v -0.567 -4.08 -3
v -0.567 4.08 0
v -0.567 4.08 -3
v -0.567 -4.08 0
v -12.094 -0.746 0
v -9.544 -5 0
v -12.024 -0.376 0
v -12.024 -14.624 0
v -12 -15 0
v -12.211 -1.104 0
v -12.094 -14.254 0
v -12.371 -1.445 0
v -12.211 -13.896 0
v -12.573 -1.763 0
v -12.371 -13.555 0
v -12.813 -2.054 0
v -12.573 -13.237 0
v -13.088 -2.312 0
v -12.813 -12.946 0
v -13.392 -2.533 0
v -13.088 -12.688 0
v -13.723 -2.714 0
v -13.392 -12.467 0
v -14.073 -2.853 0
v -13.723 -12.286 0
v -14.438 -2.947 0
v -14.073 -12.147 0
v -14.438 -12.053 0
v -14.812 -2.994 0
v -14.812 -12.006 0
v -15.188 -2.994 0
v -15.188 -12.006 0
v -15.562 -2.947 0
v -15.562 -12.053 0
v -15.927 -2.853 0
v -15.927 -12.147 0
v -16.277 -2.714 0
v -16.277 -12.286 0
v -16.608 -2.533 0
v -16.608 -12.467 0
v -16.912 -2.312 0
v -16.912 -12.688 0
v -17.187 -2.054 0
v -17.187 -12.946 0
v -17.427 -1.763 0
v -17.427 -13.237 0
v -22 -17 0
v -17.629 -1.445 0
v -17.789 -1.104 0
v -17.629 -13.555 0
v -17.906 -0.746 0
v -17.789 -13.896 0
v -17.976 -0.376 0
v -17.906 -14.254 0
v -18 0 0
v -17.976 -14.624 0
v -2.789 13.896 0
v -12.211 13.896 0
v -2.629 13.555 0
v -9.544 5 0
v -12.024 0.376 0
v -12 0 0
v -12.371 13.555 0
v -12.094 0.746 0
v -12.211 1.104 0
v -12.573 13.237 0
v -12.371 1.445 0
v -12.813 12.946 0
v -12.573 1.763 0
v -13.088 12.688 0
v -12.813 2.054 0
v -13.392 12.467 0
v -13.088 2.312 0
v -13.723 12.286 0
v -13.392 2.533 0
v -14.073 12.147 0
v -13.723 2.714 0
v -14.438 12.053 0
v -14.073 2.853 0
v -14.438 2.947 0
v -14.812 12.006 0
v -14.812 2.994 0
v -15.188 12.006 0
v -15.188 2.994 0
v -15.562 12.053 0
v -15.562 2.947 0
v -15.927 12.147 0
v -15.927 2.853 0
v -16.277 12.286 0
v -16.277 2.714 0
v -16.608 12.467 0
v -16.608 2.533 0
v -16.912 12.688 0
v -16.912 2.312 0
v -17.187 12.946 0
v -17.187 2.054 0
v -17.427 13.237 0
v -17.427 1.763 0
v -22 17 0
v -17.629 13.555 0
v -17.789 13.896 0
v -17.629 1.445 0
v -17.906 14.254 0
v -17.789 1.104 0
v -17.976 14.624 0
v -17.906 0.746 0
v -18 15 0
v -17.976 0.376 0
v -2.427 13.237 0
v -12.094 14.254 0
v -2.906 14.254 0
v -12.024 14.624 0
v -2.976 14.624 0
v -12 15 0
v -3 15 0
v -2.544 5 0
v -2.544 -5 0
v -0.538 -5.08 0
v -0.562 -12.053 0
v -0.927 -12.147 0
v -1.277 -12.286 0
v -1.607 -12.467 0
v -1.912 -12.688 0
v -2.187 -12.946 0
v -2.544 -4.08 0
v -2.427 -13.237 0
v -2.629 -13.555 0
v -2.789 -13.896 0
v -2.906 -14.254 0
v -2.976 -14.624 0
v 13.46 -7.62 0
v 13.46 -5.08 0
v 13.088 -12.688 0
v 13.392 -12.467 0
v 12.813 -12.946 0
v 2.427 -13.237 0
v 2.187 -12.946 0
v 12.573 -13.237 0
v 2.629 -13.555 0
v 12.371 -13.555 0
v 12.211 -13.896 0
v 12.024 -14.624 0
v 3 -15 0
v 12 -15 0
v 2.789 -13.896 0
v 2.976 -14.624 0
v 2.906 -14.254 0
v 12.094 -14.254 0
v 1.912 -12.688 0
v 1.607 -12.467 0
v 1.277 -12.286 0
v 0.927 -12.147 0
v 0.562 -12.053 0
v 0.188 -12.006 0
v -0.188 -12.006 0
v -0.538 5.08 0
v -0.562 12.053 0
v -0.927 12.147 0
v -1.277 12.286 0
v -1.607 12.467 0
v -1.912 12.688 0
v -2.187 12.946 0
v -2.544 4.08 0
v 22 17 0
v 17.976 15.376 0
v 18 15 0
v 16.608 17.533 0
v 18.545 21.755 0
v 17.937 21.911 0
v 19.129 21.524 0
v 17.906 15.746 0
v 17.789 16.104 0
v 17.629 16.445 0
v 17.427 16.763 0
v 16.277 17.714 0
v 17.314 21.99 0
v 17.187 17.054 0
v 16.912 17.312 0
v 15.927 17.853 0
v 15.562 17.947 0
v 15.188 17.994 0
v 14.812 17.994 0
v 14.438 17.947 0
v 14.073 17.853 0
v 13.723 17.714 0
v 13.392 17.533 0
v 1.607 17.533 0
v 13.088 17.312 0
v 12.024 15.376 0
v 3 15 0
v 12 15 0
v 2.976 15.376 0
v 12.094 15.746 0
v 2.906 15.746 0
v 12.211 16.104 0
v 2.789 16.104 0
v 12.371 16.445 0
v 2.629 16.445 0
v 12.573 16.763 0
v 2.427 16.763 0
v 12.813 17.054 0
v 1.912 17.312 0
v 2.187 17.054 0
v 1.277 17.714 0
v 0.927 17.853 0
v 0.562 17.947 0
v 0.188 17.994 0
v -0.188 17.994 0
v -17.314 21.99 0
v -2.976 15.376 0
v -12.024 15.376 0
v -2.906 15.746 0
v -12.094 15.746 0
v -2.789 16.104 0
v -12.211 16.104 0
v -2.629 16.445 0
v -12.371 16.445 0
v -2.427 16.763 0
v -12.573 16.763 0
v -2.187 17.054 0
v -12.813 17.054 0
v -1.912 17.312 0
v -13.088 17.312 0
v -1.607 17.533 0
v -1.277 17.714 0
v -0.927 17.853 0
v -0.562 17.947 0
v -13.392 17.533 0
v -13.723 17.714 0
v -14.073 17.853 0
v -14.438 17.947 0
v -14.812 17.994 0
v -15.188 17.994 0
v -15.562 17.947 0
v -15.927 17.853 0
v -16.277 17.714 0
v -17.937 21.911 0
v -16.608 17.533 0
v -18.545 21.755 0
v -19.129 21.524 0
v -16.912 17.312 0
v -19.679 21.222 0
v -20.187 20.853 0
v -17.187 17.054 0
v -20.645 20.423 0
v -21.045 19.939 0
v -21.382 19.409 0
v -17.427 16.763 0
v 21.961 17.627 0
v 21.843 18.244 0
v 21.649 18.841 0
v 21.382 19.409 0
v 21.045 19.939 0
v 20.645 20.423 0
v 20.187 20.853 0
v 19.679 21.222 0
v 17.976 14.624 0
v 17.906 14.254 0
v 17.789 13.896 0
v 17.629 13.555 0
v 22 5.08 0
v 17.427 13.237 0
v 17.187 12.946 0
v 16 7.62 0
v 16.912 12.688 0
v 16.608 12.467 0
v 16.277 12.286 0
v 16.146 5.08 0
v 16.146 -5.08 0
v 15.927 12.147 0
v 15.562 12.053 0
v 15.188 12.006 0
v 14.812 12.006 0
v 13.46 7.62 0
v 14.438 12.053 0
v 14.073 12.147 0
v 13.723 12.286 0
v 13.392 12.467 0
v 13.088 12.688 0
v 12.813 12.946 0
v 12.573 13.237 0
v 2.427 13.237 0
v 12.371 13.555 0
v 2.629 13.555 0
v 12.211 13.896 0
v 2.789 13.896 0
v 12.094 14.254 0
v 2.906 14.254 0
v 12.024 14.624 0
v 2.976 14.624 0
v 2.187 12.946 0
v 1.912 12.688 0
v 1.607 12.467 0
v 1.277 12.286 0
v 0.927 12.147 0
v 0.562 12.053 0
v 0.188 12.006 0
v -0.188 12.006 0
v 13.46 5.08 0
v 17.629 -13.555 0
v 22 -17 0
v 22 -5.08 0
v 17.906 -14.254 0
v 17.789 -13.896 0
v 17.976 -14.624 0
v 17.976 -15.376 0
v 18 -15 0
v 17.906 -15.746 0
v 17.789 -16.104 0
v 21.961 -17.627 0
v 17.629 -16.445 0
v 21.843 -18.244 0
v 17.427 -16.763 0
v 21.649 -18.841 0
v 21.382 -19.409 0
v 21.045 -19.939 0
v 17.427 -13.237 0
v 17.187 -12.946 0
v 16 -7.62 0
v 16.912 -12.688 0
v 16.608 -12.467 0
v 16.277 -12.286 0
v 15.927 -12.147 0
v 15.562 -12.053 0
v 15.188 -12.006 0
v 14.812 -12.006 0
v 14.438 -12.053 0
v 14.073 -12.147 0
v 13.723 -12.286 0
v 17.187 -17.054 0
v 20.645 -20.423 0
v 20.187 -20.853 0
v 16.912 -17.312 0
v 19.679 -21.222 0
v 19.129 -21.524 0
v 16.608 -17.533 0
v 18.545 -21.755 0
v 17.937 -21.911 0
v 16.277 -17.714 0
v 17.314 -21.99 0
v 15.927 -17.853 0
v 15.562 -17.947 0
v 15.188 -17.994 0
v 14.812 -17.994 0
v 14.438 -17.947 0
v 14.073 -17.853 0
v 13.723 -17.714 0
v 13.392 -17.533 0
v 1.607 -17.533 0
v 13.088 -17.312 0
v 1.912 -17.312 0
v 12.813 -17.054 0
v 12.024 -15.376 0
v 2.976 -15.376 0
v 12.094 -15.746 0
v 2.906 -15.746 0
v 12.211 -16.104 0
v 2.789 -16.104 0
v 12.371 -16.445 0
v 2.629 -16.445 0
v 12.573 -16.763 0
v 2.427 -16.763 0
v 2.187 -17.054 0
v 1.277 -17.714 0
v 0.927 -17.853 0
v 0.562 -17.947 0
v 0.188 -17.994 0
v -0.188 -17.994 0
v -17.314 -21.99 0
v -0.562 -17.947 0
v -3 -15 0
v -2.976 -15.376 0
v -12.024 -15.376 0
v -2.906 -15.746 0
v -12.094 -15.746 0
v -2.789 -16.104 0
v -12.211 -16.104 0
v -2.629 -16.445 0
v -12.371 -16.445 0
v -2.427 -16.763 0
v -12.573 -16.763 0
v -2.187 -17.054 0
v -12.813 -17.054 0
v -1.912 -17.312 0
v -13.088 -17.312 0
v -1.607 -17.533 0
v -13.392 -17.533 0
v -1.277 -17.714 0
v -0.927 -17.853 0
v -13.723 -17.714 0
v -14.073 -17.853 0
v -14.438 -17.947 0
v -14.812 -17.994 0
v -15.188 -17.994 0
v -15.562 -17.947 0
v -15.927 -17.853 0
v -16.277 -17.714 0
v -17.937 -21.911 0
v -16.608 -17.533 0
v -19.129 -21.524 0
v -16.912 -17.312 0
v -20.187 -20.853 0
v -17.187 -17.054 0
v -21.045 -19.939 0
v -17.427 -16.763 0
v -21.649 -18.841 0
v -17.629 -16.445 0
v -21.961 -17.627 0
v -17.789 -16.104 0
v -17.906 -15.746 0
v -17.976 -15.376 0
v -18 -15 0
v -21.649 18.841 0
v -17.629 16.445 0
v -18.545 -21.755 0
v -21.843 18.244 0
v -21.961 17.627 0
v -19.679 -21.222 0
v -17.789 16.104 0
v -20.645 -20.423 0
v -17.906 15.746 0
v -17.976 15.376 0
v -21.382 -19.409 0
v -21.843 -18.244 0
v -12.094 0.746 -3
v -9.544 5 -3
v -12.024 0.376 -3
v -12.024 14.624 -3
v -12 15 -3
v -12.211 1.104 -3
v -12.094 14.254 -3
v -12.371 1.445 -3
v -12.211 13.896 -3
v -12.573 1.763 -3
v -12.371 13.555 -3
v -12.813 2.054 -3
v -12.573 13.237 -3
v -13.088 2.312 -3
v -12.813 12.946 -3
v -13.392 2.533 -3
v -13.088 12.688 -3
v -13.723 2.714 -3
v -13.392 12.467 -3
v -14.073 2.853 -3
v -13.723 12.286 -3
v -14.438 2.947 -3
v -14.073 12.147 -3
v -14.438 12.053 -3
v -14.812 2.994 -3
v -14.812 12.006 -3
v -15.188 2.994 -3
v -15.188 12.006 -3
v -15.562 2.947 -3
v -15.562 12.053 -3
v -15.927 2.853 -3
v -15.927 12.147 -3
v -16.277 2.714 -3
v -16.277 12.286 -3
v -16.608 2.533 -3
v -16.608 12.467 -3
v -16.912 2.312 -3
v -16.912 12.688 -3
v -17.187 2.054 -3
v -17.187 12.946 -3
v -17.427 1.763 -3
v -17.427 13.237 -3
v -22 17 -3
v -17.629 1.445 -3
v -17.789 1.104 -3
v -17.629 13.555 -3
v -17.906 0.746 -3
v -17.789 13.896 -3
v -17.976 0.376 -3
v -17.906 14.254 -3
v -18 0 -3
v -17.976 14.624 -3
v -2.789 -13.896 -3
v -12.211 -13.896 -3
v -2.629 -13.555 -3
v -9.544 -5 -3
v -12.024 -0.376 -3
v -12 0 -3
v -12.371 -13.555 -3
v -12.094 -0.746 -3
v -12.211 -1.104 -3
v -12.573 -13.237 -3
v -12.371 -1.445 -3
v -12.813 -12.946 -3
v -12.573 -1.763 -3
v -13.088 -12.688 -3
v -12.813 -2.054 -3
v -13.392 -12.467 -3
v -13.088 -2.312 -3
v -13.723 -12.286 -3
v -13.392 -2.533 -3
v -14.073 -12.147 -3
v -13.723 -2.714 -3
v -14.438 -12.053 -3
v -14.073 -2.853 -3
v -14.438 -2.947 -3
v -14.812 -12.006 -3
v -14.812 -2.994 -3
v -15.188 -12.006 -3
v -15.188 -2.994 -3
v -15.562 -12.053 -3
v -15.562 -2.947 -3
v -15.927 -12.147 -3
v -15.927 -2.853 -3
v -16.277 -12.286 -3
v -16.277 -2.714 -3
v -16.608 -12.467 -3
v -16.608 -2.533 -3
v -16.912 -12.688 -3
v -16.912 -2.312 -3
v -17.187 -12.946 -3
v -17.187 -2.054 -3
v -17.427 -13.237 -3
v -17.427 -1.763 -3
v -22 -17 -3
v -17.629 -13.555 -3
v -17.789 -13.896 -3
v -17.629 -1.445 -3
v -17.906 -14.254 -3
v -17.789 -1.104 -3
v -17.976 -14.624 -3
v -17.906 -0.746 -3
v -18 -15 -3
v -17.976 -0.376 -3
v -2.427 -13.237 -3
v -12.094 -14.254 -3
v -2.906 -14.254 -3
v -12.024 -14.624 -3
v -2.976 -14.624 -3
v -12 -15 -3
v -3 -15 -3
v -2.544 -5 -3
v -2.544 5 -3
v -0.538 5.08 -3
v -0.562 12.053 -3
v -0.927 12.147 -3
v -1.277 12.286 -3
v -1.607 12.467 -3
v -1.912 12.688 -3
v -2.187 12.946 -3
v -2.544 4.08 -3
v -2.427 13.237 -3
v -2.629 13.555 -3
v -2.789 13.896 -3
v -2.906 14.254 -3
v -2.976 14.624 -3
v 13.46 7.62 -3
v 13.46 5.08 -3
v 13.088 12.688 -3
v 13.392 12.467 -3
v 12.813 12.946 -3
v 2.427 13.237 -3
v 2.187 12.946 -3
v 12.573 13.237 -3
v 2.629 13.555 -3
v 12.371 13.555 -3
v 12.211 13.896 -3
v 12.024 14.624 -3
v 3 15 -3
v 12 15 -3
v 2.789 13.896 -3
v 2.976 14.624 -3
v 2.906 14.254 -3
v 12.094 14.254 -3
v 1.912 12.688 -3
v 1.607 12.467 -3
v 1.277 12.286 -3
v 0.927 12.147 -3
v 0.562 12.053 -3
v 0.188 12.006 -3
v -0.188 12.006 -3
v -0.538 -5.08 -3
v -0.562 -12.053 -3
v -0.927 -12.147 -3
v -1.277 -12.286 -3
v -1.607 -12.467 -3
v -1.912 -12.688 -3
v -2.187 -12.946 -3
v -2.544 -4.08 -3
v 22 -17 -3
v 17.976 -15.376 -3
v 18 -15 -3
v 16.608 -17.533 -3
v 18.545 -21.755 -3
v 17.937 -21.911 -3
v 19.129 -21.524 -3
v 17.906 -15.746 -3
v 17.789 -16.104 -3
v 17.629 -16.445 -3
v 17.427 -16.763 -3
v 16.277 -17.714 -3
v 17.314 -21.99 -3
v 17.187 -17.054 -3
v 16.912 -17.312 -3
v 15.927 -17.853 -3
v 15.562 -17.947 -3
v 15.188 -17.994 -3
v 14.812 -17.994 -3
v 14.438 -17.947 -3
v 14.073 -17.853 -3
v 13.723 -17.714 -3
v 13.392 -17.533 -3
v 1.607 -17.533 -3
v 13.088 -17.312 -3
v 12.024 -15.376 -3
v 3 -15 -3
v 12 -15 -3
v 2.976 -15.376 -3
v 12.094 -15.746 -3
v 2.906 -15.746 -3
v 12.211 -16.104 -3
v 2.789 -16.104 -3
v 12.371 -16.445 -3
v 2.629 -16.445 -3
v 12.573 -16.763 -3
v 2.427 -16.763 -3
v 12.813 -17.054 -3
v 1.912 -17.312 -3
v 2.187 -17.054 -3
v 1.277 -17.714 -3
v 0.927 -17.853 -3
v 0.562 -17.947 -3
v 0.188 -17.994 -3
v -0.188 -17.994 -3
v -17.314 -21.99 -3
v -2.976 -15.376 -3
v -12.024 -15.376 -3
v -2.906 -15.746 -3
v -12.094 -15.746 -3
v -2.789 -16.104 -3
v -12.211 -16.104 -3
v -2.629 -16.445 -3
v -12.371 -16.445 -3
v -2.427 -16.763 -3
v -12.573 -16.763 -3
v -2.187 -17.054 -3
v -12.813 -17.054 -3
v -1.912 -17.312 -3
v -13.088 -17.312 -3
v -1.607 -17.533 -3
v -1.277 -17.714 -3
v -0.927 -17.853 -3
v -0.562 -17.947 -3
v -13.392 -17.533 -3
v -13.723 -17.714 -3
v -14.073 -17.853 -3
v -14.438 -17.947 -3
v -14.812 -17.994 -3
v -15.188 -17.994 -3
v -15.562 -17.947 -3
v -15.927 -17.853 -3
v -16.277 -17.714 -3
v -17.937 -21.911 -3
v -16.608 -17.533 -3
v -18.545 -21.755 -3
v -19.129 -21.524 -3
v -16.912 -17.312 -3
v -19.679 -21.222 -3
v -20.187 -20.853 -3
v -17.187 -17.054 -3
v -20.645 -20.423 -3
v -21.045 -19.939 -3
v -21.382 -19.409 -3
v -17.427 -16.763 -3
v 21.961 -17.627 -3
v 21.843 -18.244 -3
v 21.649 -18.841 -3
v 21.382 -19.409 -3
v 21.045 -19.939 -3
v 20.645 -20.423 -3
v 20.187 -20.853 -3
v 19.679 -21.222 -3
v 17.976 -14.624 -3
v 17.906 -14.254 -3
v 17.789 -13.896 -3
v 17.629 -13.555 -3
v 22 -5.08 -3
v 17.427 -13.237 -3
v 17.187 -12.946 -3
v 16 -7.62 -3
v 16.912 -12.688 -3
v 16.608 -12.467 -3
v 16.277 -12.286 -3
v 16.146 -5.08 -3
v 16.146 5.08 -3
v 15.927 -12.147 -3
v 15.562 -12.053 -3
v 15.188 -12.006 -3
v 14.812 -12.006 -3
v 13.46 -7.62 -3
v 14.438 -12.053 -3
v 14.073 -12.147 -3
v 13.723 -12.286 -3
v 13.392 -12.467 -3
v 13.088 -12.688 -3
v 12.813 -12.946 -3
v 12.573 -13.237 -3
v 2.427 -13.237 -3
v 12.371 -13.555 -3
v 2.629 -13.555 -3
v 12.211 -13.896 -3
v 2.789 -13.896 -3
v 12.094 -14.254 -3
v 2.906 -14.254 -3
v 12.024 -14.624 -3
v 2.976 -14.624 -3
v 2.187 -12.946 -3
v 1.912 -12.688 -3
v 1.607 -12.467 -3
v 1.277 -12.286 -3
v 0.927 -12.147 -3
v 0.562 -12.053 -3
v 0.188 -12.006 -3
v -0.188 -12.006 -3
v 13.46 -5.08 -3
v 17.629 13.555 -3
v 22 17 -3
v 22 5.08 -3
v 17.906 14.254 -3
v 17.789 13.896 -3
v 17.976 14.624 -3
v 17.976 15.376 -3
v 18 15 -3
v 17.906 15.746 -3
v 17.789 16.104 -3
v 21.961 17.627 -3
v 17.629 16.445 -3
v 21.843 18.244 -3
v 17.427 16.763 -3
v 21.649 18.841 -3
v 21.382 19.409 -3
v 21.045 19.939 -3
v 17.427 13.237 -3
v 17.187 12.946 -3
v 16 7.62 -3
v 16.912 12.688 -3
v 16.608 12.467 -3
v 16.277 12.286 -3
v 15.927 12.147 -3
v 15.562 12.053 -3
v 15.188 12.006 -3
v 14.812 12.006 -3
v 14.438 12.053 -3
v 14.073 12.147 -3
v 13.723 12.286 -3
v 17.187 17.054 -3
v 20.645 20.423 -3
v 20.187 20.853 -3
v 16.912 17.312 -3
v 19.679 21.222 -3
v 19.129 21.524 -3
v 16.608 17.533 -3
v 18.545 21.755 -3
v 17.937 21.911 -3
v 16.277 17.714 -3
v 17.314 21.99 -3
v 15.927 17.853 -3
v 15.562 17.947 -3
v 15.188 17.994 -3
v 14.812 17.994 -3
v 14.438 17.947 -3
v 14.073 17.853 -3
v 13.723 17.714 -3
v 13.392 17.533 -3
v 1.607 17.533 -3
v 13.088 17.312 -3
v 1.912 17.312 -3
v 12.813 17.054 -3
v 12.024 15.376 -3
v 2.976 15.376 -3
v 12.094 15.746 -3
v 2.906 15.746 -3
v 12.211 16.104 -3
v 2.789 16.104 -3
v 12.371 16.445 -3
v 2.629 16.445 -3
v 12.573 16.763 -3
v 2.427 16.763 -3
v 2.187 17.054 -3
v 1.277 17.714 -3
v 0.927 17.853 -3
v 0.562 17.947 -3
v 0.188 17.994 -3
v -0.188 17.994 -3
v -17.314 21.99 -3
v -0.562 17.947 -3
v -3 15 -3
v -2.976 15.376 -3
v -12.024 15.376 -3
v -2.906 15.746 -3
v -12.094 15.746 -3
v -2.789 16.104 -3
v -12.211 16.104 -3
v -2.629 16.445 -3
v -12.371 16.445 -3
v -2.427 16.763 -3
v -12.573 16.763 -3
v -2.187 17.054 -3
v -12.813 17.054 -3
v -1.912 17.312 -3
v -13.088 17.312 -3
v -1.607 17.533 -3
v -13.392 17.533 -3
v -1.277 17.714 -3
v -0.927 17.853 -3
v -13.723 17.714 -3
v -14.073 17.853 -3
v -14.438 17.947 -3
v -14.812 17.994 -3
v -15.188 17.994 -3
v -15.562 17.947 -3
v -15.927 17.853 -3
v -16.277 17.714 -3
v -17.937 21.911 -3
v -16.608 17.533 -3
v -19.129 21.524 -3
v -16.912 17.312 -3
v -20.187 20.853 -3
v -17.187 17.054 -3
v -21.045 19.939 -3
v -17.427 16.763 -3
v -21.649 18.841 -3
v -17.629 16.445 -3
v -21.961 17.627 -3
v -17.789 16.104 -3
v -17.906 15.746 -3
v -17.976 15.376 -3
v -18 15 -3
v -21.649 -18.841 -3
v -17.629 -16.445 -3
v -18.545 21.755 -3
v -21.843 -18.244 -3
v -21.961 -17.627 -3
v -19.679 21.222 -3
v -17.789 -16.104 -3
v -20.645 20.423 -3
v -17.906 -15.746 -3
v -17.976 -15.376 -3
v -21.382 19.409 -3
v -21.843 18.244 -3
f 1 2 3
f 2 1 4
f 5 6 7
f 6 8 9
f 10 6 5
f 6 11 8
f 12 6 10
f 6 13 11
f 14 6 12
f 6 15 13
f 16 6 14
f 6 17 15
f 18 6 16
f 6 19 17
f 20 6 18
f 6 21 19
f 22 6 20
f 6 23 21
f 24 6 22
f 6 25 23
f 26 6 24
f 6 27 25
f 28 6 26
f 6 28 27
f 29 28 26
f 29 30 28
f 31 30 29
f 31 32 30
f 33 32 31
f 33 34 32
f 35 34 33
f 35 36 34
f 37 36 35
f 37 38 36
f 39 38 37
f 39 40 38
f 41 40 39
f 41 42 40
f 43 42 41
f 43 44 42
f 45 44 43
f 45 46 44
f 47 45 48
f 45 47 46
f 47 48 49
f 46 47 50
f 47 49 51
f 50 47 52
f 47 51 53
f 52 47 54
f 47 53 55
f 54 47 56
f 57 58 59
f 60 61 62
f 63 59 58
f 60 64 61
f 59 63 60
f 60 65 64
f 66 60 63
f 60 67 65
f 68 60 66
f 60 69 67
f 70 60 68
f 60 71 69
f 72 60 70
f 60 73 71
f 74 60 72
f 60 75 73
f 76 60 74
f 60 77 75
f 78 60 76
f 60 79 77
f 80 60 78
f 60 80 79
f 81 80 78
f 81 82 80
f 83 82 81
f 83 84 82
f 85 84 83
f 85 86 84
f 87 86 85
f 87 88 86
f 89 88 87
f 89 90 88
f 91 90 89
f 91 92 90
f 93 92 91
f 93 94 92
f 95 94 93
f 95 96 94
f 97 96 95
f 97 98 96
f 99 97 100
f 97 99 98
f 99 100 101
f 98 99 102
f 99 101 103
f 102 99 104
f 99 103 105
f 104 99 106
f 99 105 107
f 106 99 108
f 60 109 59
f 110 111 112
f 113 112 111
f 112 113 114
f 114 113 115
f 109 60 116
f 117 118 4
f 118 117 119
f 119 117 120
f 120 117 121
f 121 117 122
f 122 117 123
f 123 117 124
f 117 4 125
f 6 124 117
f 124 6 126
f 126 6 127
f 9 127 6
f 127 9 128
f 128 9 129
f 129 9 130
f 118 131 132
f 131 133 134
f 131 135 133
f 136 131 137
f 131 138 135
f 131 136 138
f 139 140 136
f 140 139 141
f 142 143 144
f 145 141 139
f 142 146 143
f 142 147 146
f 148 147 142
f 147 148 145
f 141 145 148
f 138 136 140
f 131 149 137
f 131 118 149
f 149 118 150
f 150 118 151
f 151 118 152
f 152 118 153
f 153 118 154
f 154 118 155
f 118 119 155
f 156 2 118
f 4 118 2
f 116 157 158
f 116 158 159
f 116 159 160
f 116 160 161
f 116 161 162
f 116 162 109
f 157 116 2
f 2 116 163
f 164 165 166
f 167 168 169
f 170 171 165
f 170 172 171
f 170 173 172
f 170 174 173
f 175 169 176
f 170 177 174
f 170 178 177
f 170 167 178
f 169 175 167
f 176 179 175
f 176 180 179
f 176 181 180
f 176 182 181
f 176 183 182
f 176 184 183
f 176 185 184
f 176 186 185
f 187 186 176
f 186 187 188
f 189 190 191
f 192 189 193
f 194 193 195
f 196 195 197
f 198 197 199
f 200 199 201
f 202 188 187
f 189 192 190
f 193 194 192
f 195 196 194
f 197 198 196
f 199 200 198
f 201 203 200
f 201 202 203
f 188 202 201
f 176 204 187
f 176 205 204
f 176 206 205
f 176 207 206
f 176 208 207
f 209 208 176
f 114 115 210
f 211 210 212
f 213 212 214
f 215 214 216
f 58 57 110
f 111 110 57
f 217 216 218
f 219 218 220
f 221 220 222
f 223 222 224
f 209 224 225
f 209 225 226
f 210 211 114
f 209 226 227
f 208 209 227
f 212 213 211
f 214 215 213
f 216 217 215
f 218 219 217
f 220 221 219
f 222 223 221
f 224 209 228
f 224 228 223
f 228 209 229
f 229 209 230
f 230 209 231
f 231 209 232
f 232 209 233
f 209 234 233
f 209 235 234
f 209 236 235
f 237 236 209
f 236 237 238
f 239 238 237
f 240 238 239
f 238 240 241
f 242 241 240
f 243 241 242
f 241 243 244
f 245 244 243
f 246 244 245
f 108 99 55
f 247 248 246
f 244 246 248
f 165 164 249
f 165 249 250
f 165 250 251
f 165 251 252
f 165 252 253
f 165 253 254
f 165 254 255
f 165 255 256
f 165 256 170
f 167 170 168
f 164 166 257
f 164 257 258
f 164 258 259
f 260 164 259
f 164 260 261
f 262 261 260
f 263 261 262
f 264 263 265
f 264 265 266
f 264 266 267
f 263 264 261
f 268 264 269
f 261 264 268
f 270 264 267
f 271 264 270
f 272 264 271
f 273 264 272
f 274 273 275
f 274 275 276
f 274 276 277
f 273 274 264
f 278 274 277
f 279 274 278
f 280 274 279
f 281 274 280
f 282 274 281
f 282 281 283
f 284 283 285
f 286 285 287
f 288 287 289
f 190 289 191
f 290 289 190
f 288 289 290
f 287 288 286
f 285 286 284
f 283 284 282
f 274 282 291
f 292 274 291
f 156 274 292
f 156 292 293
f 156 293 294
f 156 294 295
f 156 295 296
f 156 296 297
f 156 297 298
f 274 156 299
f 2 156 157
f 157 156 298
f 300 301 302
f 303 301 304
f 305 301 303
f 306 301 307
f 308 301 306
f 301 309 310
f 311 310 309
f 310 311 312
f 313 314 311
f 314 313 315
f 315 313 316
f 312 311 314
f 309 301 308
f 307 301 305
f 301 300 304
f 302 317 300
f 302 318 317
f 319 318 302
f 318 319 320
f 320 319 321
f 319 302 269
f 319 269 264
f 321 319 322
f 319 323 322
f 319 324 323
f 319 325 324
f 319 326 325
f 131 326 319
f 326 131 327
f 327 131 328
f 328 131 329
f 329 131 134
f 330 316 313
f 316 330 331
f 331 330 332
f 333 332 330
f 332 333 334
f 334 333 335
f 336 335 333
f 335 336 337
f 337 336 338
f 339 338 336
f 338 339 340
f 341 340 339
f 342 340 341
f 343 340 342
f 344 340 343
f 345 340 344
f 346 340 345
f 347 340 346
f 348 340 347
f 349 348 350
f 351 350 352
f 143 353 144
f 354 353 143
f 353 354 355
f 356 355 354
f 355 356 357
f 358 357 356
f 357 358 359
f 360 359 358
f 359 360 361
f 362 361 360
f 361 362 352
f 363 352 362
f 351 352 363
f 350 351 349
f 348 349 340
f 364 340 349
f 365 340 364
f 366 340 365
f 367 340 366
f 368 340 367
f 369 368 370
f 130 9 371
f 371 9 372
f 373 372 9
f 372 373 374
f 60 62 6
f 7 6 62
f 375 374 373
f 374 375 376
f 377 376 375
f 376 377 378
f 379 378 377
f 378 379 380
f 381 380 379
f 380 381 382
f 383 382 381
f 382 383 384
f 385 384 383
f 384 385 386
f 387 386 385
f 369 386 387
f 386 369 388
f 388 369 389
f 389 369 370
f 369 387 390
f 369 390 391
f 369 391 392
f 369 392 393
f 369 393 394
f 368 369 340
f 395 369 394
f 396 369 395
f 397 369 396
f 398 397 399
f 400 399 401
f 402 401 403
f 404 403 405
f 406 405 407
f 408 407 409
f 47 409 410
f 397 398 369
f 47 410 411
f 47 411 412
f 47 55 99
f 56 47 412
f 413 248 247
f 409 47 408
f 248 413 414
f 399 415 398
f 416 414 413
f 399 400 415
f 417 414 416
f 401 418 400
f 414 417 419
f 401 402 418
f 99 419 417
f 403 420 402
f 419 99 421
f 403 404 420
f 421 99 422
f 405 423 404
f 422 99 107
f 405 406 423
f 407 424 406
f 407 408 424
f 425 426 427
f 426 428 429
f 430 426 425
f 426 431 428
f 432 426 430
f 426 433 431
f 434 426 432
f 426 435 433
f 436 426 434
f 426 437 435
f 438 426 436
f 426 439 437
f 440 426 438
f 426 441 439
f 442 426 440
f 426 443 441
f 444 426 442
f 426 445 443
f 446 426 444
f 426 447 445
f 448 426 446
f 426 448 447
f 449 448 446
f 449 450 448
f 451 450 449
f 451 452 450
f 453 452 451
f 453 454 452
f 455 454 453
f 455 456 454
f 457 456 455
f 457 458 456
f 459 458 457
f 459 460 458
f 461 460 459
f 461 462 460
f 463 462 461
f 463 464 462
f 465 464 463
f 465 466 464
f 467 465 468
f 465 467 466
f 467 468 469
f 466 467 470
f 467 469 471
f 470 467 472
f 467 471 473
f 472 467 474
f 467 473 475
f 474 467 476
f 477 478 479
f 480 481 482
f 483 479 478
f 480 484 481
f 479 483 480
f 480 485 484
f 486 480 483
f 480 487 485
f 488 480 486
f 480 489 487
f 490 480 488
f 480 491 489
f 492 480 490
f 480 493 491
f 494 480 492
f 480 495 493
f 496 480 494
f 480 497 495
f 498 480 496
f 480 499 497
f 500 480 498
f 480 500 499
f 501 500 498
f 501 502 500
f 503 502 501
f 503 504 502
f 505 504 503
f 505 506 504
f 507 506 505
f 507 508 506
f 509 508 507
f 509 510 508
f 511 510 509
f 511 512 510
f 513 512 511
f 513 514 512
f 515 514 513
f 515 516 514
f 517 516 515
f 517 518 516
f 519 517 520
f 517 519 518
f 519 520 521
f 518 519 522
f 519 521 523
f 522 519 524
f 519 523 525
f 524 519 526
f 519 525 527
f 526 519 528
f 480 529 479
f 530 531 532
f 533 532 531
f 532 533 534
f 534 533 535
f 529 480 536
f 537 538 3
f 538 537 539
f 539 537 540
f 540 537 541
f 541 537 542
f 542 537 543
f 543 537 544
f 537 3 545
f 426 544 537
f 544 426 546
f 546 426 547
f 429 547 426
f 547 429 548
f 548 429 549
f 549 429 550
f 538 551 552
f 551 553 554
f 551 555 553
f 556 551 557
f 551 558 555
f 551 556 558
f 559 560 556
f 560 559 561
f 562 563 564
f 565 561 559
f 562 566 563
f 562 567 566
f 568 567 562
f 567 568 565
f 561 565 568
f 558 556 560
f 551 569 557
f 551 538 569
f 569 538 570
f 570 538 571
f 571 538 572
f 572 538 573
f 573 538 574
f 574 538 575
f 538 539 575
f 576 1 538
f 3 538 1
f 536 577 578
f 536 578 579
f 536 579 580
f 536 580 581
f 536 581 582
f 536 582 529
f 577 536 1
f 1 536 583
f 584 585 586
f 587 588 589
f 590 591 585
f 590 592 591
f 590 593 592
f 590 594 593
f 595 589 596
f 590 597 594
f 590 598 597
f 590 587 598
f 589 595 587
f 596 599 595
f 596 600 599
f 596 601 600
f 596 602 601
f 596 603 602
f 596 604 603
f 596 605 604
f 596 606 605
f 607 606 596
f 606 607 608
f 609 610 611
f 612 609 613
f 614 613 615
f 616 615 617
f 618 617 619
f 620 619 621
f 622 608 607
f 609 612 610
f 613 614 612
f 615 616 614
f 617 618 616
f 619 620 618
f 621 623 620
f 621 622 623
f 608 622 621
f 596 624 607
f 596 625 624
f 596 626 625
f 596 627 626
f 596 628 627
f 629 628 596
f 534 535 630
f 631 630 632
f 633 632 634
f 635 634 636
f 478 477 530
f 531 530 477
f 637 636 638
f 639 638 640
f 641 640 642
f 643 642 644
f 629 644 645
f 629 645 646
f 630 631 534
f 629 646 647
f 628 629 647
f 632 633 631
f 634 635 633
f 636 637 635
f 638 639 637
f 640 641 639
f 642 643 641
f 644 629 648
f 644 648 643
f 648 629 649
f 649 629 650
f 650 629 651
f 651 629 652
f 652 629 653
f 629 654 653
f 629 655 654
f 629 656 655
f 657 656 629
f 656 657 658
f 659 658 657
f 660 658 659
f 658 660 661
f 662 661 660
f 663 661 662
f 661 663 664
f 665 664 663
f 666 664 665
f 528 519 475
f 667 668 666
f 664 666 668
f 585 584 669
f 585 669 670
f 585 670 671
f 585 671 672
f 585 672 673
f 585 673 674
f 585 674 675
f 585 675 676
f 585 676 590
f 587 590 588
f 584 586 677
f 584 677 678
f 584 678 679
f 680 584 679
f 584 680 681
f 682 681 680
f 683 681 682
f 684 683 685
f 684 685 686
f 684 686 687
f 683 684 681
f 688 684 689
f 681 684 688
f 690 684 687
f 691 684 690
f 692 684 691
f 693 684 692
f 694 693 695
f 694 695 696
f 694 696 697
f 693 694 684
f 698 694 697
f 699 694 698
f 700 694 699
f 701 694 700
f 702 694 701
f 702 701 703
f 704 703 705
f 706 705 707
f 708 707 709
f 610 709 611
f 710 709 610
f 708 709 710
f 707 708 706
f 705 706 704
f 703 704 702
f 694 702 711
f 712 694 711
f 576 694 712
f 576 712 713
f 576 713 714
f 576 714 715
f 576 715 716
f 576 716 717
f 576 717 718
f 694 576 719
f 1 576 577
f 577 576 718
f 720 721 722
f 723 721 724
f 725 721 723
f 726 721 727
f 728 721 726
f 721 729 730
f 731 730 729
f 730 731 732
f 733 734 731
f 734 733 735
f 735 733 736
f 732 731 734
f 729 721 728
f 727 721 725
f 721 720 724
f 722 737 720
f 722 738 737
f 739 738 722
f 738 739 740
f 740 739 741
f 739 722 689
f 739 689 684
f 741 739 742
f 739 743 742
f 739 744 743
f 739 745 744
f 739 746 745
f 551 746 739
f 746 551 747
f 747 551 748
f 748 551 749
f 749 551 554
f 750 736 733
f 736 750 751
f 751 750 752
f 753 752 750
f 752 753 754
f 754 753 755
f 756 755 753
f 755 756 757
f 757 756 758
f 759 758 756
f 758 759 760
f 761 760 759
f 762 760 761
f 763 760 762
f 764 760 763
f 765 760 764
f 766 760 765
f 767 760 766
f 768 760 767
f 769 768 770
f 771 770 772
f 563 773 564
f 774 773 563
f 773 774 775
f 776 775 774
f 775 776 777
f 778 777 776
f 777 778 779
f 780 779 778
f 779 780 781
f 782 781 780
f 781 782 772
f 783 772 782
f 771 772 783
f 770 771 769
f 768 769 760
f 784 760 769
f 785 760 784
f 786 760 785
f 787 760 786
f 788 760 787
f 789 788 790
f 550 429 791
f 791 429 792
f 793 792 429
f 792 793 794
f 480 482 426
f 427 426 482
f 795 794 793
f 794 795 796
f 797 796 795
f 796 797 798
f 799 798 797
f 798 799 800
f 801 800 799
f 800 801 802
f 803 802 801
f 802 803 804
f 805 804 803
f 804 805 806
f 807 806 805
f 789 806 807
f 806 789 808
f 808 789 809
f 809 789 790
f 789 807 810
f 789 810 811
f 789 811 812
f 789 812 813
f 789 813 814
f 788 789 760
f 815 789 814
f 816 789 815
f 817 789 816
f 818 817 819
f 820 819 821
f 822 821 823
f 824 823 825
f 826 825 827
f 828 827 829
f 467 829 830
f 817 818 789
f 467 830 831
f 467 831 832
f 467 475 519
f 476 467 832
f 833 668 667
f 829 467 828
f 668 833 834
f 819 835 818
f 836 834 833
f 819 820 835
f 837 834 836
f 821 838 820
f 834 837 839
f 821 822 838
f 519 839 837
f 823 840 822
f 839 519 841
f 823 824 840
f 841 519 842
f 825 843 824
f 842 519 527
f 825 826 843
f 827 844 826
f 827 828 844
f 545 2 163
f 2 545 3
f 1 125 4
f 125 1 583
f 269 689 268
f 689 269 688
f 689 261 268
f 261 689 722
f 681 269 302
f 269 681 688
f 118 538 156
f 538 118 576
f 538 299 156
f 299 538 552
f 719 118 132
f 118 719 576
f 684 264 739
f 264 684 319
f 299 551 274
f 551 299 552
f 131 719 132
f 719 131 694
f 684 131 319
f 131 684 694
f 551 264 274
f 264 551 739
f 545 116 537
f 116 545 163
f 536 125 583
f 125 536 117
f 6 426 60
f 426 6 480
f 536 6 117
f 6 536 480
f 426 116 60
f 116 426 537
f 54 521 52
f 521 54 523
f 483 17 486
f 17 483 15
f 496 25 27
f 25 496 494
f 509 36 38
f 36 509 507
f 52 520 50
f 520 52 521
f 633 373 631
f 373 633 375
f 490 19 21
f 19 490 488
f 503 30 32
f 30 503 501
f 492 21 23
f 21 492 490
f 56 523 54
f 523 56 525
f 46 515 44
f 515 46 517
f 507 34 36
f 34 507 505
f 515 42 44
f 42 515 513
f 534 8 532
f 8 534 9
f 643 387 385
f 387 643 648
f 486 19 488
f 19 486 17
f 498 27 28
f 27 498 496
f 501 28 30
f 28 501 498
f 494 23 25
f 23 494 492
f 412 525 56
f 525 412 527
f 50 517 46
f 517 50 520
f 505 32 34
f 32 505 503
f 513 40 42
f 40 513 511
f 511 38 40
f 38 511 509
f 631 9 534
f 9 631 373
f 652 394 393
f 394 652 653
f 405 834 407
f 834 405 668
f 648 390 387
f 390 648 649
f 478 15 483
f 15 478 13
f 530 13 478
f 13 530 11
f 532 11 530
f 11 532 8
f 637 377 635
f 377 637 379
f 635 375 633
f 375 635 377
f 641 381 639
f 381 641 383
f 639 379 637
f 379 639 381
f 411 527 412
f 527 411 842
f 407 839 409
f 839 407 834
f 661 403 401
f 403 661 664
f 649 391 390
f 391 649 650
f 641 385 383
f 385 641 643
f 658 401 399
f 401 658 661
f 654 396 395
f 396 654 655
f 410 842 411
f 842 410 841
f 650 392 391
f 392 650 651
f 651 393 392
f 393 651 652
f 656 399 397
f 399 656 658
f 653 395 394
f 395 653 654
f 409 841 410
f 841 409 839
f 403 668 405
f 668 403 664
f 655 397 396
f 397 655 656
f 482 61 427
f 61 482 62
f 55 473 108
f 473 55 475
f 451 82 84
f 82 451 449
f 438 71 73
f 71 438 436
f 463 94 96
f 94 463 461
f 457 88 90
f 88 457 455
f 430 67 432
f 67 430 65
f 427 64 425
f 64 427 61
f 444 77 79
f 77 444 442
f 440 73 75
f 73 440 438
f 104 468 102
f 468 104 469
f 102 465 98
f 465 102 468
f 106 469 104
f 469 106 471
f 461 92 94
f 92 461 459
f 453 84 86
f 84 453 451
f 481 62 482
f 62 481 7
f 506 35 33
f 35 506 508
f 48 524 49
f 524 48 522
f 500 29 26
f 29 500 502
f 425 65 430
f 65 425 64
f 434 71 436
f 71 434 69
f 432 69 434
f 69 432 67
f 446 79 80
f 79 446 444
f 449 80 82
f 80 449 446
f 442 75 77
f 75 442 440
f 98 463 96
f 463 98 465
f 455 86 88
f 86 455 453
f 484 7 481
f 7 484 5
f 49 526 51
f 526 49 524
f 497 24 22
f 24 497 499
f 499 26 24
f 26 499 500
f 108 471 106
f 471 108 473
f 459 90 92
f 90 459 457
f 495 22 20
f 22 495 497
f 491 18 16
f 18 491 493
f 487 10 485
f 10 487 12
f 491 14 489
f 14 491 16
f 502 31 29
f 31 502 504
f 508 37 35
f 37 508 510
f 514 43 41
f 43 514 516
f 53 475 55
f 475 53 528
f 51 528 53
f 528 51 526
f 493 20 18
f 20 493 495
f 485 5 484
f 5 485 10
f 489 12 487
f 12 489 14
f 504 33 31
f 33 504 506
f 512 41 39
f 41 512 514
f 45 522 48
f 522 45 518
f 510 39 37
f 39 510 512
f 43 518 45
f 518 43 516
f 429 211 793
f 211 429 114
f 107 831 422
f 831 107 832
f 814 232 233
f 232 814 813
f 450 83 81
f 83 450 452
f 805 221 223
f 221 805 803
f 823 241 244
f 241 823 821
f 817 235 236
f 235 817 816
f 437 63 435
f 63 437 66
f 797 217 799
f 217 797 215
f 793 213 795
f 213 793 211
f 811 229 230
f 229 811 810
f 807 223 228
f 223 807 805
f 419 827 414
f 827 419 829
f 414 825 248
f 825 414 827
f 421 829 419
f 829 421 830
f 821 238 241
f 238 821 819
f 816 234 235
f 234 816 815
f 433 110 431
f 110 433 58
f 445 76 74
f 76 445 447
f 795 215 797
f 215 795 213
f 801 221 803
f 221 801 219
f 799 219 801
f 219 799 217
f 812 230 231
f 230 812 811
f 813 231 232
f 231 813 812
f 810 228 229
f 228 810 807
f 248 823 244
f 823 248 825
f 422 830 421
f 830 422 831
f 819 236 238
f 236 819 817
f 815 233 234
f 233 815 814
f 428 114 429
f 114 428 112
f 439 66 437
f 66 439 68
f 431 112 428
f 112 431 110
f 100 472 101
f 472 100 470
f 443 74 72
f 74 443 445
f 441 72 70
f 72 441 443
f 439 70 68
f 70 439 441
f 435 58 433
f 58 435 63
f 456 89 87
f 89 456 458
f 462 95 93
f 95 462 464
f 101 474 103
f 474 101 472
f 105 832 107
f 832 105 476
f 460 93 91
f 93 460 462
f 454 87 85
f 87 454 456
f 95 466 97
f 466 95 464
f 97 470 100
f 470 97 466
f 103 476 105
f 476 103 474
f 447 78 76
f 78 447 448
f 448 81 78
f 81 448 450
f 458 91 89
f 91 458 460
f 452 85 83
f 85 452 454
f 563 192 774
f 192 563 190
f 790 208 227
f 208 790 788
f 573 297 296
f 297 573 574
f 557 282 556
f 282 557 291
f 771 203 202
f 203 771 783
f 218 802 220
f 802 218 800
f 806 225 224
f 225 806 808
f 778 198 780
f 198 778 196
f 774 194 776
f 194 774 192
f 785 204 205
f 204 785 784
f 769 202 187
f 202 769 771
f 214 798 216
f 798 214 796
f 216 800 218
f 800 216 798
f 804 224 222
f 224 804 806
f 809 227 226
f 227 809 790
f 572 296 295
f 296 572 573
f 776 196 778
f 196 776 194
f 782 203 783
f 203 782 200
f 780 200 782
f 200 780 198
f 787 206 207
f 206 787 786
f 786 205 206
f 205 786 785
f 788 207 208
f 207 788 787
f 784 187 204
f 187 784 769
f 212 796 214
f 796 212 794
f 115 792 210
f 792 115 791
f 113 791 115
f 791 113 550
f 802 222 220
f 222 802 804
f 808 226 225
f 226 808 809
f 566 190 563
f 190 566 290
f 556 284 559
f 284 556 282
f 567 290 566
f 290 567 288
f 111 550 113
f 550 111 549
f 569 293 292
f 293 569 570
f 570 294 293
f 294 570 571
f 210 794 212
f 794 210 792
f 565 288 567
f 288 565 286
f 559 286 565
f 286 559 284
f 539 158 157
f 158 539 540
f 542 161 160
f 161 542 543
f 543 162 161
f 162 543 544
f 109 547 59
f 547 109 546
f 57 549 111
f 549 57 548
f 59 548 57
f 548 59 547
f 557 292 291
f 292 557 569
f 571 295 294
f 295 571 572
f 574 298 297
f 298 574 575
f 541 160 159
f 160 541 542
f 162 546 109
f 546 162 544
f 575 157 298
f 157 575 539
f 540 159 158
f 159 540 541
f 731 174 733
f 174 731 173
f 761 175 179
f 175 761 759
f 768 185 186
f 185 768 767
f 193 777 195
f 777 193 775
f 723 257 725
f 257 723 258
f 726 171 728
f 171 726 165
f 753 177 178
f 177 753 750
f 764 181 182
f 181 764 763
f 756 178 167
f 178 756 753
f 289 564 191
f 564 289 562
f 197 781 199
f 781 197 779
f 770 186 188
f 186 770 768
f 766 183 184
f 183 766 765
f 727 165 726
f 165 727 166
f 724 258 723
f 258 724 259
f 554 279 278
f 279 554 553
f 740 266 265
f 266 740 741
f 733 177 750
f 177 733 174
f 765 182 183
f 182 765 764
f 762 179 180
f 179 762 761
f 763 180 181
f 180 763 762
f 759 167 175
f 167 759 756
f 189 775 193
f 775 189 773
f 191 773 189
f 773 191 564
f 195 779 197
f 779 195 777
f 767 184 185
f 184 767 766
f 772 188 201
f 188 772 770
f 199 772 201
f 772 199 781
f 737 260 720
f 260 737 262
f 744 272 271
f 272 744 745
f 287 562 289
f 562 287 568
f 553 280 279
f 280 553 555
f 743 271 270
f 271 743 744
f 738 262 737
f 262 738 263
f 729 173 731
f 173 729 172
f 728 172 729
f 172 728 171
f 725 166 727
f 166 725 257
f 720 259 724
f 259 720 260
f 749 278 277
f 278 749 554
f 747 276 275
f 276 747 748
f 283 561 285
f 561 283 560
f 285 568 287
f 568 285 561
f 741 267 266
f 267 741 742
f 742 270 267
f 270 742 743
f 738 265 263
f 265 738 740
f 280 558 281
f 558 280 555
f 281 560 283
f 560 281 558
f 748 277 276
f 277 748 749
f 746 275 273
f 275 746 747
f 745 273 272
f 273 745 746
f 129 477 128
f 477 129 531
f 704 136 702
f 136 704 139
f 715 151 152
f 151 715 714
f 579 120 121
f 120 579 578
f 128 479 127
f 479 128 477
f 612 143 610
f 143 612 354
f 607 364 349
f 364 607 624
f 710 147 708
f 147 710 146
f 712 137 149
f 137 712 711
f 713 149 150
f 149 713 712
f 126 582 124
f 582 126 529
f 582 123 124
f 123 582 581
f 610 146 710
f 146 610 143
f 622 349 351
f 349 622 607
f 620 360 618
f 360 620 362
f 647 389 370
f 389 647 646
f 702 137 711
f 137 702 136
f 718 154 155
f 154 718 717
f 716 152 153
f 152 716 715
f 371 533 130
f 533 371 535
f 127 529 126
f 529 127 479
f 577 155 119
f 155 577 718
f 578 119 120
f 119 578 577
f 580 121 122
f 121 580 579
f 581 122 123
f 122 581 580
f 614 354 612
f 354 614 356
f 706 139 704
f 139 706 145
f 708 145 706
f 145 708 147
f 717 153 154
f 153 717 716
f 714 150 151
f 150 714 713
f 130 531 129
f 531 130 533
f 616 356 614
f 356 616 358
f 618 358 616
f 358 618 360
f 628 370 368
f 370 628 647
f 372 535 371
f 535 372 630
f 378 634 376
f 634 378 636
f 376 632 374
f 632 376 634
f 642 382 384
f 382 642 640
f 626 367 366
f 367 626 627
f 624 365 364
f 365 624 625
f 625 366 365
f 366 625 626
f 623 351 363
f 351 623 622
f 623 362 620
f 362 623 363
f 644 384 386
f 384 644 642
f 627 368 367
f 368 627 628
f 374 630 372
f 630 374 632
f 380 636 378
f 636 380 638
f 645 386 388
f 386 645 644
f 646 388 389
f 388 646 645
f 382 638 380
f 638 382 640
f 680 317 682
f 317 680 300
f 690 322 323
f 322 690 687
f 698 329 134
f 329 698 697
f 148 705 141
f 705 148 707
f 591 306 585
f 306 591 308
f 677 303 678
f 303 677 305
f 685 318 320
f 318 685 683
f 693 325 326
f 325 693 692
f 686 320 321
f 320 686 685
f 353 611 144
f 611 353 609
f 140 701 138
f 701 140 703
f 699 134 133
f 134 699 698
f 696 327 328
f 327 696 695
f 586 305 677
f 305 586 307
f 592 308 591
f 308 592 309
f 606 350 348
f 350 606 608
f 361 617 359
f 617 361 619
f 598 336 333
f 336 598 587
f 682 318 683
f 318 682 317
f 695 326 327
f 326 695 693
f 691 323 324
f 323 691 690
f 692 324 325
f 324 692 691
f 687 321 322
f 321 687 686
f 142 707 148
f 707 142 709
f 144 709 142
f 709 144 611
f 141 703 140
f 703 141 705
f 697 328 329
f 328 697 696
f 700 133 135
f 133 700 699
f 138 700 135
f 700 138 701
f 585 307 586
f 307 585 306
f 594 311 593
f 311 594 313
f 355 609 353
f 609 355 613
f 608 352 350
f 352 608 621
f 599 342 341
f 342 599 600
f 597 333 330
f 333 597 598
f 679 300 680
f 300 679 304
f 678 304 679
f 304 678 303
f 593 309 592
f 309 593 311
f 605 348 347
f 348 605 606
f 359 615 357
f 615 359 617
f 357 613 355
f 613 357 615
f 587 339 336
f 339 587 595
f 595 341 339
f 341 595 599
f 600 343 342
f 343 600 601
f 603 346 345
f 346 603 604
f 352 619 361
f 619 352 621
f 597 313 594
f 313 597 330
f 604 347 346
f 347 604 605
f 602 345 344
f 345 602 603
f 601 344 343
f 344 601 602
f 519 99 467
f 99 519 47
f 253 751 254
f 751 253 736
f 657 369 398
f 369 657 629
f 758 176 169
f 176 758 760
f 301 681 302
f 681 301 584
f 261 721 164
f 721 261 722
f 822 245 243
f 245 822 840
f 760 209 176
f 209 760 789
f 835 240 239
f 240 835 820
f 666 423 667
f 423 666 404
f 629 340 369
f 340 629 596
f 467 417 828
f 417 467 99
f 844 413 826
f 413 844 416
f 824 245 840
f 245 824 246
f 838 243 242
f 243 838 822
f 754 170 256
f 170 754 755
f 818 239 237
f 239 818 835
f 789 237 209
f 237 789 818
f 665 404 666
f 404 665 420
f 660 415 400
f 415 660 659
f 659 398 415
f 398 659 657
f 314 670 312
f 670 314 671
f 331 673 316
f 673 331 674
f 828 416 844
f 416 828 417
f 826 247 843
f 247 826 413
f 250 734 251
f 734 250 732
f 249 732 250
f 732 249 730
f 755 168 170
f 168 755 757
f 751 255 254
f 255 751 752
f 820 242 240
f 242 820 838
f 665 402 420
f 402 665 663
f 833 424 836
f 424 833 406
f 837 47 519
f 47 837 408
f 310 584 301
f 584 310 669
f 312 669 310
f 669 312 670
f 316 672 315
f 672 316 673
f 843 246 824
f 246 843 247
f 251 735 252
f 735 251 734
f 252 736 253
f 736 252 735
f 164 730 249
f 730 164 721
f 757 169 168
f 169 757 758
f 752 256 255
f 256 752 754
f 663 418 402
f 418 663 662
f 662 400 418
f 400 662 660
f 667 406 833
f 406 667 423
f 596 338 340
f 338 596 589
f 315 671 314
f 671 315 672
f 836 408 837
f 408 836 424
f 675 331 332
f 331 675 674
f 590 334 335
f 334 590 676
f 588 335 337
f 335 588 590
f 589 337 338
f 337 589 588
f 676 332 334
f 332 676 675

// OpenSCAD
$fn = 50;


difference() {
	union() {
		translate(v = [0, 0, -3]) {
			hull() {
				translate(v = [-17.0000000000, 17.0000000000, 0]) {
					cylinder(h = 3, r = 5);
				}
				translate(v = [17.0000000000, 17.0000000000, 0]) {
					cylinder(h = 3, r = 5);
				}
				translate(v = [-17.0000000000, -17.0000000000, 0]) {
					cylinder(h = 3, r = 5);
				}
				translate(v = [17.0000000000, -17.0000000000, 0]) {
					cylinder(h = 3, r = 5);
				}
			}
		}
	}
	union() {
		translate(v = [22.5000000000, 0, -3]) {
			rotate(a = [0, 0, 180]) {
				difference() {
					union() {
						#translate(v = [23.0670000000, -4.0800000000, 0]) {
							cube(size = [5, 8.1600000000, 3]);
						}
						#translate(v = [0.3540000000, -5.0800000000, 0]) {
							cube(size = [6, 10.1600000000, 3]);
						}
						#translate(v = [9.0380000000, -5.0800000000, 0]) {
							cube(size = [14, 10.1600000000, 3]);
						}
						#translate(v = [6.5000000000, -7.6200000000, 0]) {
							cube(size = [2.5400000000, 15.2400000000, 3]);
						}
						#translate(v = [25.0440000000, -5.0000000000, 0]) {
							cube(size = [7, 10, 3]);
						}
					}
					union();
				}
			}
		}
		translate(v = [-15.0000000000, -15.0000000000, -50.0000000000]) {
			cylinder(h = 100, r = 3.0000000000);
		}
		translate(v = [-15.0000000000, 0.0000000000, -50.0000000000]) {
			cylinder(h = 100, r = 3.0000000000);
		}
		translate(v = [-15.0000000000, 15.0000000000, -50.0000000000]) {
			cylinder(h = 100, r = 3.0000000000);
		}
		translate(v = [-15.0000000000, 15.0000000000, -50.0000000000]) {
			cylinder(h = 100, r = 3.0000000000);
		}
		translate(v = [0.0000000000, 15.0000000000, -50.0000000000]) {
			cylinder(h = 100, r = 3.0000000000);
		}
		translate(v = [15.0000000000, 15.0000000000, -50.0000000000]) {
			cylinder(h = 100, r = 3.0000000000);
		}
		translate(v = [-15.0000000000, -15.0000000000, -50.0000000000]) {
			cylinder(h = 100, r = 3.0000000000);
		}
		translate(v = [0.0000000000, -15.0000000000, -50.0000000000]) {
			cylinder(h = 100, r = 3.0000000000);
		}
		translate(v = [15.0000000000, -15.0000000000, -50.0000000000]) {
			cylinder(h = 100, r = 3.0000000000);
		}
	}
}
